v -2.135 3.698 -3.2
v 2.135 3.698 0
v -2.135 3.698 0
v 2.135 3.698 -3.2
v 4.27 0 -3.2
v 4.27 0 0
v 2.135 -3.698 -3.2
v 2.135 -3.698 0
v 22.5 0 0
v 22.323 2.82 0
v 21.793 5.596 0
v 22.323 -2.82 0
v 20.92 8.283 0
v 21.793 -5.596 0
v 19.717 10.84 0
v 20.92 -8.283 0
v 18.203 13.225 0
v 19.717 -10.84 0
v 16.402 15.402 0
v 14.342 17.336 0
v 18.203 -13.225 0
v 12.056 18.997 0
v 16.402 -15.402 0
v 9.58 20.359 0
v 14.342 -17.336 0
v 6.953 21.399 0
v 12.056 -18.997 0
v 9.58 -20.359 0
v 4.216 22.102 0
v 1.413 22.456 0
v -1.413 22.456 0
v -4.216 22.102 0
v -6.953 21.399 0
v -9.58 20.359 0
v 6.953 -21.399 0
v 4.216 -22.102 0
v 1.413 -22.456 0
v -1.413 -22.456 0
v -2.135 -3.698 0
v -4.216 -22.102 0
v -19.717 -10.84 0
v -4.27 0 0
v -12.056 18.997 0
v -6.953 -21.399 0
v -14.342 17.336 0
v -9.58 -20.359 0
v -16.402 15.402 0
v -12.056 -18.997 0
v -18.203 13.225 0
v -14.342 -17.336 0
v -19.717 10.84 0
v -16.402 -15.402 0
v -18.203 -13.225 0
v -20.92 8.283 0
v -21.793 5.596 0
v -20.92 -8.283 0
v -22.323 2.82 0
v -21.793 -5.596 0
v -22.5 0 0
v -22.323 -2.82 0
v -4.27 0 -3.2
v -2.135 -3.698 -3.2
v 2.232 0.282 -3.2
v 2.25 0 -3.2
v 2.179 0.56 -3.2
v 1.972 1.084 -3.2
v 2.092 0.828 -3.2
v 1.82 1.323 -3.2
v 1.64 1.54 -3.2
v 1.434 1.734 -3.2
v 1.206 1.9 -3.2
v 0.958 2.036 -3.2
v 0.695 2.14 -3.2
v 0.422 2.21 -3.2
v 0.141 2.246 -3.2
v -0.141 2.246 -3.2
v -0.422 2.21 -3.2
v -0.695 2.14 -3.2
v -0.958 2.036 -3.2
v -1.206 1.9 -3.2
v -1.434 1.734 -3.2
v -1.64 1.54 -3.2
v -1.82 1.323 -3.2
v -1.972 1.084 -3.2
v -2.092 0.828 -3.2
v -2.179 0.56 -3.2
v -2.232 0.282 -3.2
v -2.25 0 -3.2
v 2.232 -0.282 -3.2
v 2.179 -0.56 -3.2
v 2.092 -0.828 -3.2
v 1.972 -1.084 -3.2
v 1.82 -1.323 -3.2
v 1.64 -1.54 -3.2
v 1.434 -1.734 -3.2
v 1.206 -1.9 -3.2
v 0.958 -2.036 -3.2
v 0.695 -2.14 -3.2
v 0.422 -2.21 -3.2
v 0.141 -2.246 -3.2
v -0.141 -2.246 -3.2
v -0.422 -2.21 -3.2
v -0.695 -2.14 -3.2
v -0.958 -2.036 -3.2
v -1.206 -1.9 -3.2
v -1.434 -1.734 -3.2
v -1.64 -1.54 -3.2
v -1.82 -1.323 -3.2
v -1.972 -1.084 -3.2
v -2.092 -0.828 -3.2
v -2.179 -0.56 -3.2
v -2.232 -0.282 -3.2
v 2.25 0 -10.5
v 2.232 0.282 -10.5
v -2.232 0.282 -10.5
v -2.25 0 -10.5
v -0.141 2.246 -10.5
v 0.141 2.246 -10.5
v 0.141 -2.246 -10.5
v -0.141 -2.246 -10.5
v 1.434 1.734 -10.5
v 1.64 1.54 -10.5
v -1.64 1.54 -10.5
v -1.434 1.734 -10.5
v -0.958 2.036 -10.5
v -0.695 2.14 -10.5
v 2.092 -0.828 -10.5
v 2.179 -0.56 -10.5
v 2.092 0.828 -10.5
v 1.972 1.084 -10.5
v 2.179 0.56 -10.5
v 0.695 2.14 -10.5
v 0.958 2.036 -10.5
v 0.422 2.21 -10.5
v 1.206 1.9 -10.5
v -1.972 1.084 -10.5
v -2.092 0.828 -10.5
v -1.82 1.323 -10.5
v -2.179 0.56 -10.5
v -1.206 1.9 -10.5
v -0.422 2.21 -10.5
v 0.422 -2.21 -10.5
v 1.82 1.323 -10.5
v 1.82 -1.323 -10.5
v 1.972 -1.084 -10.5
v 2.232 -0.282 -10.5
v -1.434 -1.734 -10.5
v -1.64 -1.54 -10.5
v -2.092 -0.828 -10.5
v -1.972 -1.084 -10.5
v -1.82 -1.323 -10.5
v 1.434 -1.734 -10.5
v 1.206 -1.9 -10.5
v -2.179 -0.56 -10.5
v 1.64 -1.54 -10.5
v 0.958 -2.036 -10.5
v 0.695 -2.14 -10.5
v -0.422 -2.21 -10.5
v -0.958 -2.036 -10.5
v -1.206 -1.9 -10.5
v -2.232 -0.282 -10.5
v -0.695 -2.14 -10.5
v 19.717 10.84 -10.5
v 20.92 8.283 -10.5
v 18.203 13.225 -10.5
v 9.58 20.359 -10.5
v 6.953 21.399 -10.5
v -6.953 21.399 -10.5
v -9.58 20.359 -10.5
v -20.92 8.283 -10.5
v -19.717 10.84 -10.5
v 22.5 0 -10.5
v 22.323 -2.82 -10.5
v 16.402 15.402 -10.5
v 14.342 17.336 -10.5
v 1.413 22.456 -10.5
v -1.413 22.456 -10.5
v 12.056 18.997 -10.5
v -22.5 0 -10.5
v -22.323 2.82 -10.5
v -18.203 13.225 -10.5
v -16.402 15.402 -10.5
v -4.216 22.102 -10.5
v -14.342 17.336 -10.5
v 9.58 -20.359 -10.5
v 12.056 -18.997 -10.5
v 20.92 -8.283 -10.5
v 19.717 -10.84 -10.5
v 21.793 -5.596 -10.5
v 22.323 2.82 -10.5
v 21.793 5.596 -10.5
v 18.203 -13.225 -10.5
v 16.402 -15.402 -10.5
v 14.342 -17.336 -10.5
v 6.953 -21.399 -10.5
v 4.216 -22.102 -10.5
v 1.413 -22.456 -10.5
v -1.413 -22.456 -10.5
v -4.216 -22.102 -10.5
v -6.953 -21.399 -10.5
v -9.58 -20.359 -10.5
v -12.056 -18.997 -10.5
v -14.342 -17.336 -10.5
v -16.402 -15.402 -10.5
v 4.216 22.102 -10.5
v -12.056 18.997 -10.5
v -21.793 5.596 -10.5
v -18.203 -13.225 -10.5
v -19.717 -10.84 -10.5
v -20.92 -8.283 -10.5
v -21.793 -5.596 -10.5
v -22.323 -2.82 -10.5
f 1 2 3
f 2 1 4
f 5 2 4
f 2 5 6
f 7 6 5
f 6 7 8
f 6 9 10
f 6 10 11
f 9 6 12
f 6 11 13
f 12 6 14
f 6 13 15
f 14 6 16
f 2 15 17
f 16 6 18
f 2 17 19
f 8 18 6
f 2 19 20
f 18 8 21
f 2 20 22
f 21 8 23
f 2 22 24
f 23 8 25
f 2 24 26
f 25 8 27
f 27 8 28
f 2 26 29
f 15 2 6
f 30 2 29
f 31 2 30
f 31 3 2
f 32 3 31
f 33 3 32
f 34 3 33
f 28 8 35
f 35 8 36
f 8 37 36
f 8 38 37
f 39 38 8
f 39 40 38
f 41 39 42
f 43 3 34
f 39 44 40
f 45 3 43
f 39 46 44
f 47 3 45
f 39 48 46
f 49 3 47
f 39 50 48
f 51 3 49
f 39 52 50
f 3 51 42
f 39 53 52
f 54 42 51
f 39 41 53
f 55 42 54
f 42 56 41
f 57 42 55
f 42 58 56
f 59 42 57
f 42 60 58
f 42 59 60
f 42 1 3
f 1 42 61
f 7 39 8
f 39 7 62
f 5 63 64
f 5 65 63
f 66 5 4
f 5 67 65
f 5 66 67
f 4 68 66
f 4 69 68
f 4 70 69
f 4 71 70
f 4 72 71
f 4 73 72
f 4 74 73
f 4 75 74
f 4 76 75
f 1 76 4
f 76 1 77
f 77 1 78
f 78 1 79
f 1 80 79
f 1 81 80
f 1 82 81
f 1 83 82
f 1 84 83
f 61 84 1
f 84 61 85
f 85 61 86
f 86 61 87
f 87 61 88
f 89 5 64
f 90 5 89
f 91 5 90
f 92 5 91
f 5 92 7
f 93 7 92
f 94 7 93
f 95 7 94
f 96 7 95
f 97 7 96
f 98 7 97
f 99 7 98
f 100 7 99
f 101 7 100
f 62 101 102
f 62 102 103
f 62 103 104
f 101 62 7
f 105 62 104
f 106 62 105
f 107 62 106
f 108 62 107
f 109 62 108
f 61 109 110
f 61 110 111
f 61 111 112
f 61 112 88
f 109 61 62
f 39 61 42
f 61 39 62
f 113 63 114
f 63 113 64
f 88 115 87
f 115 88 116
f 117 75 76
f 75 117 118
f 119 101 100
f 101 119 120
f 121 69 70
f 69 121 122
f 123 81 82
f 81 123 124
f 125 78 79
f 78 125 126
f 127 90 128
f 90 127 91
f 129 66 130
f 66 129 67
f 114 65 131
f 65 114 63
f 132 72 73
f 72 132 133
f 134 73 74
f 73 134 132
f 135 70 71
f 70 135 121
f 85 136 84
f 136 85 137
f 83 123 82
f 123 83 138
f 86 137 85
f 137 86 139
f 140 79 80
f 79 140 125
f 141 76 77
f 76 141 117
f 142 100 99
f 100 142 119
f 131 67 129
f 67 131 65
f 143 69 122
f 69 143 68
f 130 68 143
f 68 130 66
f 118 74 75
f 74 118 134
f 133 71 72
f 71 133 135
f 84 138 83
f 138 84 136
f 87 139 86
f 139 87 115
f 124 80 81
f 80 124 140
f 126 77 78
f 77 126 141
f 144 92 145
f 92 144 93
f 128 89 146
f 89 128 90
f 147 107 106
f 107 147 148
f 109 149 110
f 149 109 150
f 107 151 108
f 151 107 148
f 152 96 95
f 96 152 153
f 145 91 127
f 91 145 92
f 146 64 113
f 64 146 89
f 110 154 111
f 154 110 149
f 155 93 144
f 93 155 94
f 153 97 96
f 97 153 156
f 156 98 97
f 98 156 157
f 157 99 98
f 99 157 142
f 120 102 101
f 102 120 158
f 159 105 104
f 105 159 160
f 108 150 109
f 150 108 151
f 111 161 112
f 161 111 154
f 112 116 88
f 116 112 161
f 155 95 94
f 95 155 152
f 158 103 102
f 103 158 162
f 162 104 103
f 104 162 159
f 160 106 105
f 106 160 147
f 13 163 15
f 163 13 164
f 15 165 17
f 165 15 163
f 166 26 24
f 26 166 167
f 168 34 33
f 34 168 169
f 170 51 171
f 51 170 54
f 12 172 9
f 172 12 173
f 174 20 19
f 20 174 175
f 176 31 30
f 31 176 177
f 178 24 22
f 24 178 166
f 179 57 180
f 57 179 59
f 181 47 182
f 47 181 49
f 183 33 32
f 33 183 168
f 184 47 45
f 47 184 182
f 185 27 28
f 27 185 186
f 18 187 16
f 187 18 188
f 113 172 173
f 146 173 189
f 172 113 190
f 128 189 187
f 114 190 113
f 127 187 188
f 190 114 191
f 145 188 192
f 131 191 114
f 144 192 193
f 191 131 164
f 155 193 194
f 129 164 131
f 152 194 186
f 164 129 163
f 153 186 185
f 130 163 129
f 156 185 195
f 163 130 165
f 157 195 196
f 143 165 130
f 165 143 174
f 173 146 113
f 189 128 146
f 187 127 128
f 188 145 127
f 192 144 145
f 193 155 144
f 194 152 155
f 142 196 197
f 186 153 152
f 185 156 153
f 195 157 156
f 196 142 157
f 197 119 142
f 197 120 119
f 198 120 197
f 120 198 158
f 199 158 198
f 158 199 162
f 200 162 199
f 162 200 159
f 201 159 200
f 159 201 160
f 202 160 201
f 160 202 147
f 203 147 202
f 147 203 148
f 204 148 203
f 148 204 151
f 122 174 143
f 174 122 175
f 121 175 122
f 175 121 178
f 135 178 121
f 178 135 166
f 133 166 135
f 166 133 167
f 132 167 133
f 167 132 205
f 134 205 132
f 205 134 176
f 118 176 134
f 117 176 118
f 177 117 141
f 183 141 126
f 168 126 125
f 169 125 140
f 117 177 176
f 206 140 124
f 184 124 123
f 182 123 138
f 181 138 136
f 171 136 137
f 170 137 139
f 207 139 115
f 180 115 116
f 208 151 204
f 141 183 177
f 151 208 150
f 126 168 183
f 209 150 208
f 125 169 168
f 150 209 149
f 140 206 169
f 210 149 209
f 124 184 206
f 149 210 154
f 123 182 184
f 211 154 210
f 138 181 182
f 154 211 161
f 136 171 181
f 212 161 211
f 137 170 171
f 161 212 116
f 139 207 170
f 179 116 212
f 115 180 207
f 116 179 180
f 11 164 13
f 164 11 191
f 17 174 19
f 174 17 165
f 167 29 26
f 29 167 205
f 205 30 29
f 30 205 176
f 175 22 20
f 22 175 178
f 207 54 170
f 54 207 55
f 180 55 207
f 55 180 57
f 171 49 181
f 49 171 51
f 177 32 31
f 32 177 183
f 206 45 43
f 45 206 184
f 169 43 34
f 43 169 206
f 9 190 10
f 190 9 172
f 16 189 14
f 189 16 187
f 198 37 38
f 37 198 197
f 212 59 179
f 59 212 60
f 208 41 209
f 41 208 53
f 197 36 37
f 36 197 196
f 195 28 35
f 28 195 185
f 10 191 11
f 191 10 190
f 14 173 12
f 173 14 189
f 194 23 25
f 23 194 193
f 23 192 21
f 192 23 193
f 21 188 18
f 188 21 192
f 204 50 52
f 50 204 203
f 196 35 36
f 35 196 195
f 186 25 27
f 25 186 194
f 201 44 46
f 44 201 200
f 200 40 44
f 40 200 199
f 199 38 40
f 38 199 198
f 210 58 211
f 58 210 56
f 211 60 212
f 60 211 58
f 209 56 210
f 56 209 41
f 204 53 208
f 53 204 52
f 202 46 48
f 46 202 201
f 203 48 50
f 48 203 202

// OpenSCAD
$fn = 50;


difference() {
	union() {
		translate(v = [0, 0, -10.5000000000]) {
			cylinder(h = 10.5000000000, r = 22.5000000000);
		}
	}
	union() {
		translate(v = [0, 0, 0]) {
			rotate(a = [0, 0, 0]) {
				difference() {
					union() {
						translate(v = [0, 0, -3.2000000000]) {
							#linear_extrude(height = 3.2000000000) {
								polygon(points = [[4.2698000000, 0.0000000000], [2.1349000000, 3.6977552691], [-2.1349000000, 3.6977552691], [-4.2698000000, 0.0000000000], [-2.1349000000, -3.6977552691], [2.1349000000, -3.6977552691]]);
							}
						}
					}
					union();
				}
			}
		}
		#translate(v = [0, 0, -100.0000000000]) {
			cylinder(h = 200, r = 2.2500000000);
		}
	}
}
